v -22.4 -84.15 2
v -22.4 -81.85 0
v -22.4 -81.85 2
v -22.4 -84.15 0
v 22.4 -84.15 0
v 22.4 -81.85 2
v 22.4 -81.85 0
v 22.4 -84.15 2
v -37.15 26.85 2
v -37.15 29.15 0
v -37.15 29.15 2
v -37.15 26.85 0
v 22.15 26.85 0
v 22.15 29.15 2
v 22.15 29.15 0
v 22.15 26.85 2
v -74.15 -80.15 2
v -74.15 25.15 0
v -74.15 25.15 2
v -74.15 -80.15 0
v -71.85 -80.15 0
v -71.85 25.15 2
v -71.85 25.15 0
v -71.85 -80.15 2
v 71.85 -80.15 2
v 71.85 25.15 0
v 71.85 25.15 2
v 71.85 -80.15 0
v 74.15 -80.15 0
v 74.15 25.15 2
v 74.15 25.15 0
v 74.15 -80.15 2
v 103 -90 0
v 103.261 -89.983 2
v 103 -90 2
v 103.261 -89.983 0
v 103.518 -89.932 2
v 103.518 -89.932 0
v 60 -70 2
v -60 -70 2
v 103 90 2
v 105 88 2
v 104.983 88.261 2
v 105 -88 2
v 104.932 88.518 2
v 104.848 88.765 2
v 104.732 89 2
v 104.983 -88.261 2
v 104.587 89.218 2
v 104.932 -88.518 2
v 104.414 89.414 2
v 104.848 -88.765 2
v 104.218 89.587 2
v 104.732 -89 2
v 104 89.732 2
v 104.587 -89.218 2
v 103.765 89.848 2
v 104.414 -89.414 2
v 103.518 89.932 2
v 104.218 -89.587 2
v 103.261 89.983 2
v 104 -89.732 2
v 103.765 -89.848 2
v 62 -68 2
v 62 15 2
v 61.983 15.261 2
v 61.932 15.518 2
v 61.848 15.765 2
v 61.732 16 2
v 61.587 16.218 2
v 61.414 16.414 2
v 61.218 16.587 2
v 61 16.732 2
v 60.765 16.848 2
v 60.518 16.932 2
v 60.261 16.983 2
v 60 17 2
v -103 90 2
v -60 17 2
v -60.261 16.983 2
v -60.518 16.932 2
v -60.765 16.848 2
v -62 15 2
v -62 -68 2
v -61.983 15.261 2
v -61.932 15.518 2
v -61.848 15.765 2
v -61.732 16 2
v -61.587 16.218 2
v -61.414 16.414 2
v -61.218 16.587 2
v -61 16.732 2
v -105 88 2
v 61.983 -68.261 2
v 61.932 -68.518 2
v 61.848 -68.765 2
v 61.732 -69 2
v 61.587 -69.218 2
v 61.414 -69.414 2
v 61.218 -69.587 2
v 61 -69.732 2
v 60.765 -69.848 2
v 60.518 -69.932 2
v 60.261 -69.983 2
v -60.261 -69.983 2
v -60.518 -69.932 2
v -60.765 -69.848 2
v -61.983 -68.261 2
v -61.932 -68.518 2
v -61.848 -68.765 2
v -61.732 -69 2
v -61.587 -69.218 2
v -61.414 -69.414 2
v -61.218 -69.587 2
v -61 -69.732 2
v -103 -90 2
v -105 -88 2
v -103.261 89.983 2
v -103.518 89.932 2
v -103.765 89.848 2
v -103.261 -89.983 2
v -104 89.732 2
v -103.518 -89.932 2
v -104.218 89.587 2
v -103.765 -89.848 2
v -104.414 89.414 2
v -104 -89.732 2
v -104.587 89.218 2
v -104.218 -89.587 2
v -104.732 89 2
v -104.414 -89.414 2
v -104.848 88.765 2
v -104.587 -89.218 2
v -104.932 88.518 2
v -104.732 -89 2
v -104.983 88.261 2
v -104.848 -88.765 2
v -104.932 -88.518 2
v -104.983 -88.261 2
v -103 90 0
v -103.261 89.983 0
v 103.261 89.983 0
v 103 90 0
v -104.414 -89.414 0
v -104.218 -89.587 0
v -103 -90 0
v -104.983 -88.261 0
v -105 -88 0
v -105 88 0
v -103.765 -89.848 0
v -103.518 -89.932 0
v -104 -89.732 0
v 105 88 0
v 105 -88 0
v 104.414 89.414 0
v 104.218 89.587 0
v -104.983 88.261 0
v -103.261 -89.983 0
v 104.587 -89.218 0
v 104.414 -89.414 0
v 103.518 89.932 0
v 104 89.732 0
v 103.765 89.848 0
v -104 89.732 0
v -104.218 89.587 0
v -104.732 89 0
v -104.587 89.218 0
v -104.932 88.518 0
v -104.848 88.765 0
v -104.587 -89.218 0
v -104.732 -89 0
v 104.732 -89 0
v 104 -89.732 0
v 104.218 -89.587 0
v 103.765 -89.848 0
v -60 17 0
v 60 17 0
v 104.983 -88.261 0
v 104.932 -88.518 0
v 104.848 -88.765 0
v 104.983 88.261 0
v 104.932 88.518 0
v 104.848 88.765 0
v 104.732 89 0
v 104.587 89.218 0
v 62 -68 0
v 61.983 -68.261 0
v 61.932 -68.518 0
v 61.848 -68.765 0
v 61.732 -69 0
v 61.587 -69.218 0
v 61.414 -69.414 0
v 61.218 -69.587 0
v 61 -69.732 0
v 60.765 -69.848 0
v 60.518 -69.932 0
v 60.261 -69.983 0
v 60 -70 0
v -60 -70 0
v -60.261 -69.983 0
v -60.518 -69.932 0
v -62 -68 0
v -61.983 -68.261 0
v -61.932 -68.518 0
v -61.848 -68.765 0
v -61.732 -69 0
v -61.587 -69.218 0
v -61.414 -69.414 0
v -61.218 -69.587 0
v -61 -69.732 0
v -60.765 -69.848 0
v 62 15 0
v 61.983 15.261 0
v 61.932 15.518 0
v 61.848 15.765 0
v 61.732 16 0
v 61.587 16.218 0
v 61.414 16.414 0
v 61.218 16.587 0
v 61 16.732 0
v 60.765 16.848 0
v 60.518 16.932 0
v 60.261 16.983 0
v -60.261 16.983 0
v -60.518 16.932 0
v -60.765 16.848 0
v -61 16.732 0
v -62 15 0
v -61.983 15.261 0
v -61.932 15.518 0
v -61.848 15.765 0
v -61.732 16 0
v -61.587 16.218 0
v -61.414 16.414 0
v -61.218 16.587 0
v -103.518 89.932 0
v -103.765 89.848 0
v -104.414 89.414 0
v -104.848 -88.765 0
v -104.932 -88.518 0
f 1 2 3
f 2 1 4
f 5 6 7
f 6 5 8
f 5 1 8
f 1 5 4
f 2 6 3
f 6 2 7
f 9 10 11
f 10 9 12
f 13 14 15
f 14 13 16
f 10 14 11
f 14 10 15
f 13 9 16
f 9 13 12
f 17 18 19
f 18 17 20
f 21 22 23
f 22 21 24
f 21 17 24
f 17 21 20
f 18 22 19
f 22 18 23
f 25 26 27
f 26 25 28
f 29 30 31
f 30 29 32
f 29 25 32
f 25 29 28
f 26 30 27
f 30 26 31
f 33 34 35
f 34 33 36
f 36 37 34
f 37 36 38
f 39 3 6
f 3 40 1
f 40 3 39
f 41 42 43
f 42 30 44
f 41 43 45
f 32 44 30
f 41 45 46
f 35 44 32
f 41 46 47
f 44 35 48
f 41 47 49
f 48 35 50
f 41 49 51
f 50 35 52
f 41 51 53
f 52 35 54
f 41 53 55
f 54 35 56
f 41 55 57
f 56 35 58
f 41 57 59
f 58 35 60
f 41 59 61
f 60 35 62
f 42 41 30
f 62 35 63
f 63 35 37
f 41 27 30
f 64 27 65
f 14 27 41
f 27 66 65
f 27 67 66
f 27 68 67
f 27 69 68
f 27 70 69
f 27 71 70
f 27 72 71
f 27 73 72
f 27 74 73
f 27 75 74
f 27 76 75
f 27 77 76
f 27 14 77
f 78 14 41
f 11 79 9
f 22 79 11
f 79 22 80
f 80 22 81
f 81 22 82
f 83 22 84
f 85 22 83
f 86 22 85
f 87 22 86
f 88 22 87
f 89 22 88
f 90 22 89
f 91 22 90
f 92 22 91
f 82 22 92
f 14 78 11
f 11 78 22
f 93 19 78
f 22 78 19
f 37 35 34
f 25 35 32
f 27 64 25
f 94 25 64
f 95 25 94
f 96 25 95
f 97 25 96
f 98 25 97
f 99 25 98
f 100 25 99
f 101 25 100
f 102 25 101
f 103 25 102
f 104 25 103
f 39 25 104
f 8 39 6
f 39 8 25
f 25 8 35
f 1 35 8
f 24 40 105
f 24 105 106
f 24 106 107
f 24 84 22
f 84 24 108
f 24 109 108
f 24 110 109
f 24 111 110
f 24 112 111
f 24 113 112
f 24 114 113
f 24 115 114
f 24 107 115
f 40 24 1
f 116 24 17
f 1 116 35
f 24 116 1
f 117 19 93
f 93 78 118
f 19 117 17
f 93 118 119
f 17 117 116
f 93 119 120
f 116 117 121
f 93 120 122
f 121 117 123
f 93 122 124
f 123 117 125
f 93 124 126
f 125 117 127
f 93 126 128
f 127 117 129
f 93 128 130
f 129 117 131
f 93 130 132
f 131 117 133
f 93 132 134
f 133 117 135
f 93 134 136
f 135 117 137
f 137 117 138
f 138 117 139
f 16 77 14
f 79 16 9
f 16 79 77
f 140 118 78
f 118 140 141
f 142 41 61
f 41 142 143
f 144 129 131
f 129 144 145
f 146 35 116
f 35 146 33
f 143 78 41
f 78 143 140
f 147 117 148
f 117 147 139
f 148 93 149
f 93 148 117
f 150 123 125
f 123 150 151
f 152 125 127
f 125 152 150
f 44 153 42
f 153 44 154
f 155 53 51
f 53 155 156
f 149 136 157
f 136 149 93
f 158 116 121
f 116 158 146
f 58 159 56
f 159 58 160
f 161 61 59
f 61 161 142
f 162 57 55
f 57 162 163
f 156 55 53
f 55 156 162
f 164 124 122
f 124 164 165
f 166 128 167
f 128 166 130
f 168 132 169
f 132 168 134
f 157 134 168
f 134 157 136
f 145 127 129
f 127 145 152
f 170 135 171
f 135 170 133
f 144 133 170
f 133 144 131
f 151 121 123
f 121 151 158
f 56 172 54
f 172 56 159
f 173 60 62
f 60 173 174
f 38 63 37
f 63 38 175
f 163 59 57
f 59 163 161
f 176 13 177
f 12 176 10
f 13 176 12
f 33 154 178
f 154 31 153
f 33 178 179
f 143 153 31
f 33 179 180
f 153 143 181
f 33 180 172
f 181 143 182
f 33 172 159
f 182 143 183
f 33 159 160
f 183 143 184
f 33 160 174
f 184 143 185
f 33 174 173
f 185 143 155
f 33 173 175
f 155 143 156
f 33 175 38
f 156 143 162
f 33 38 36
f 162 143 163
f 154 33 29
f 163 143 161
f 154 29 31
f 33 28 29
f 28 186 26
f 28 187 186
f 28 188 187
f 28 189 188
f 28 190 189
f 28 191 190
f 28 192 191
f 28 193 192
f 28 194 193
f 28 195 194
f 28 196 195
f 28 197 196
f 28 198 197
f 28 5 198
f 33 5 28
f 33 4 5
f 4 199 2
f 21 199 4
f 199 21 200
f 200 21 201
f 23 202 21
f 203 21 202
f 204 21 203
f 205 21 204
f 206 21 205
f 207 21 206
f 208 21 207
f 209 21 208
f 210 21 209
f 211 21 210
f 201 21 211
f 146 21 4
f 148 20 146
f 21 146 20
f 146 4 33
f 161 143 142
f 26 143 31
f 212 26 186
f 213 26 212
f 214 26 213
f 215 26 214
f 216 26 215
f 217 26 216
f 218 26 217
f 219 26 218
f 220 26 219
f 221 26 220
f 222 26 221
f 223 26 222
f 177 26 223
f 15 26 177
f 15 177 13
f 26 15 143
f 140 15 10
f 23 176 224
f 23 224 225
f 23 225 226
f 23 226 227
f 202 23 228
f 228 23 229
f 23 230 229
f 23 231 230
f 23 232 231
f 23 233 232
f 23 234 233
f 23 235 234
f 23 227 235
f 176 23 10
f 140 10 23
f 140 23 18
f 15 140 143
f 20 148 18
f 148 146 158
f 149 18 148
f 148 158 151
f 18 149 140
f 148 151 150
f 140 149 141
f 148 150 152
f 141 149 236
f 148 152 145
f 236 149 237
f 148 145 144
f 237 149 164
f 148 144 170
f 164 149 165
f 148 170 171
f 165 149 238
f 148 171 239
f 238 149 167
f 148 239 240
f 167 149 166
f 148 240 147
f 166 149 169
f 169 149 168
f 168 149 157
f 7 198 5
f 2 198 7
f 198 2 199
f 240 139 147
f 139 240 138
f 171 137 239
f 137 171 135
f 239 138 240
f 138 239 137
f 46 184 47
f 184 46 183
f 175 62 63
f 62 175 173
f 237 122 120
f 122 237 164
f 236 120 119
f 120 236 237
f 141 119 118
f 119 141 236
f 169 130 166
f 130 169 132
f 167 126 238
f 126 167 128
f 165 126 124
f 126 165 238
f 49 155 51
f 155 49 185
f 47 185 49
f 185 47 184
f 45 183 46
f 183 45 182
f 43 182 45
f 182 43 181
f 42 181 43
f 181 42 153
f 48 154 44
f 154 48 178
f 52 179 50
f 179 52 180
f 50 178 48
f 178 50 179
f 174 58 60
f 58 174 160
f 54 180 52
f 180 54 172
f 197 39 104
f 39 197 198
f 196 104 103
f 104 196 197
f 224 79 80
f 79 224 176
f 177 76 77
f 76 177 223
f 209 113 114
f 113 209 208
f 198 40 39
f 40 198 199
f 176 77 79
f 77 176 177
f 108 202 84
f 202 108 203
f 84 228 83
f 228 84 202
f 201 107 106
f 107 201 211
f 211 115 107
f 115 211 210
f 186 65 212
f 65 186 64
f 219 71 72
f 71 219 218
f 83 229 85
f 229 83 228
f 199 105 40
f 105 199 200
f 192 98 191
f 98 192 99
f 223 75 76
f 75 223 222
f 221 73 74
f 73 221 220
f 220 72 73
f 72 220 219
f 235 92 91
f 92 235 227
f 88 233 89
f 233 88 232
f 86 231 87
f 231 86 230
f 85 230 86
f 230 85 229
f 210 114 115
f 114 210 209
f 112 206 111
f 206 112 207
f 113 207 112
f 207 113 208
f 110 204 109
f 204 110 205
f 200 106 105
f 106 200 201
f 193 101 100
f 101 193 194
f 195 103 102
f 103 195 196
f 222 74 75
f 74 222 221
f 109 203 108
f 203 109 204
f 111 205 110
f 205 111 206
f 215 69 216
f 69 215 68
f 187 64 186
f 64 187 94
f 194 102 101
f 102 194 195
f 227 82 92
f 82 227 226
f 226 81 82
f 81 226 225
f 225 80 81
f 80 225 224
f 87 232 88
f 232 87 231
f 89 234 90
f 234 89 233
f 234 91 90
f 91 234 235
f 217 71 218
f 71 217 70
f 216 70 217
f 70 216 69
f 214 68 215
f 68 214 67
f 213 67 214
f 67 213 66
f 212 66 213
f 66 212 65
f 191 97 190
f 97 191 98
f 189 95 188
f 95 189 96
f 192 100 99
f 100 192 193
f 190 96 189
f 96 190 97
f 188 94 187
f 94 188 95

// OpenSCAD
/*
  Seed imaging system case with experimental collector

  Starting point:
    A simple rectangular base plate for the vacuum/rocking seed imaging system.
*/

$fn = 48;

// Choose what OpenSCAD shows/exports.
part_to_show = "plate"; // "assembly", "plate", "front", "back", "left_side", "right_side", "sides", "collector", "lower_frame", "bottom"

// Base plate dimensions.
plate_w = 210;      // mm
plate_h = 180;      // mm
plate_thick = 2;    // mm
corner_r = 2;       // mm, just enough to remove sharp corners
wall_slot_clearance = 0.3; // mm extra slot size for sliding wall parts into plate

// Cutout matching the outer tray footprint of the moving funnel adapter.
funnel_cutout_w = 124;       // mm, long side plus clearance for rotation
funnel_cutout_h = 87;        // mm, short side plus clearance for rotation
funnel_front_gap = 20;       // mm from front long edge of plate to cutout
funnel_cutout_r = 2;         // mm, slight radius to avoid sharp internal corners
funnel_cutout_y = -plate_h/2 + funnel_front_gap + funnel_cutout_h/2;

// Front wall for the vacuum adapter interface, hanging down from the top plate.
front_wall_offset_from_cutout = 12; // mm from front edge of cutout toward plate front
front_wall_extra_w = 10;            // mm extension beyond each cutout side
front_wall_w = funnel_cutout_w + 2 * front_wall_extra_w;
front_wall_h = 101.25;              // mm, bottom is 72 mm below front circle center
front_wall_thick = 2;               // mm
front_wall_y = funnel_cutout_y - funnel_cutout_h/2 - front_wall_offset_from_cutout - front_wall_thick;
back_wall_offset_from_cutout = 10;  // mm from back edge of cutout toward plate back
back_wall_y = funnel_cutout_y + funnel_cutout_h/2 + back_wall_offset_from_cutout;
side_wall_thick = front_wall_thick;
side_wall_y = front_wall_y;
side_wall_depth = back_wall_y + front_wall_thick - front_wall_y;

// Circular opening in the front wall for the static funnel-system spout.
static_spout_outer_d = 31.5;       // mm, current static male spout OD
front_wall_spout_clearance = 1;    // mm extra diameter clearance
front_wall_spout_cutout_d = static_spout_outer_d + front_wall_spout_clearance;
front_wall_spout_top_drop = 15;    // mm below top surface of plate
front_wall_spout_center_z = plate_thick - front_wall_spout_top_drop - front_wall_spout_cutout_d/2;
front_wall_tab_margin = 10;      // mm material around circular spout tab
front_wall_tab_x = -front_wall_spout_cutout_d/2 - front_wall_tab_margin;
front_wall_tab_w = front_wall_spout_cutout_d + 2 * front_wall_tab_margin;
front_back_wall_bottom_clearance = 10; // mm below circular cutout bottom
front_back_wall_bottom_z = front_wall_spout_center_z - front_wall_spout_cutout_d/2 - front_back_wall_bottom_clearance;
front_back_wall_h = -front_back_wall_bottom_z;

// Rectangular opening in the back wall, aligned with the spout opening height.
back_wall_rect_cutout_w = 40;   // mm, long horizontal edge
back_wall_rect_cutout_h = 20;   // mm, vertical edge
back_wall_rect_cutout_x_shift = -11; // mm, left shift from spout center
back_wall_notch_size = 7;       // mm square notch centered on right edge
back_wall_notch_overlap = 0.5;  // mm overlap to avoid a zero-width seam
back_wall_tab_margin = 10;      // mm material around motor cutout tab
back_wall_cutout_min_x = back_wall_rect_cutout_x_shift - back_wall_rect_cutout_w/2;
back_wall_cutout_max_x = back_wall_rect_cutout_x_shift + back_wall_rect_cutout_w/2 + back_wall_notch_size;
back_wall_tab_x = back_wall_cutout_min_x - back_wall_tab_margin;
back_wall_tab_w = back_wall_cutout_max_x - back_wall_cutout_min_x + 2 * back_wall_tab_margin;
back_wall_servo_pad_thick = 4;    // mm extra thickness behind servo mount area
back_wall_servo_pad_margin = 6;   // mm material around the motor rectangle cutout
// Experimental lower collector dimensions.
total_system_h = 190;              // mm, target total height from top of plate to floor
floor_z = plate_thick - total_system_h;
upper_wall_bottom_z = -front_wall_h;
collector_drop_h = upper_wall_bottom_z - floor_z;
collector_wall = 2;                // mm wall thickness for chute/outlet
collector_outlet_od = 30;          // mm outer diameter for seed packet interface
collector_outlet_id = collector_outlet_od - 2 * collector_wall;
collector_outlet_len = 24;         // mm, angled tube length; shorter leaves room for the funnel slope
collector_neck_overlap = 8;        // mm overlap into throat so the angled neck and funnel connect solidly
collector_outlet_angle = 135;      // degrees; cylinder axis points 45 degrees down toward the front
collector_floor_clearance = 35;    // mm from floor to lowest outside edge of outlet mouth
collector_outlet_end_z = floor_z + collector_floor_clearance + collector_outlet_od/2;
collector_outlet_start_z = collector_outlet_end_z - collector_outlet_len * cos(collector_outlet_angle);
collector_outlet_start_y = front_wall_y + 28;
collector_outlet_end_y = collector_outlet_start_y - collector_outlet_len * sin(collector_outlet_angle);
collector_top_margin = 3;          // mm inset from inside wall span
collector_post = 8;                // mm square lower frame corner posts
collector_base_rail_h = 8;         // mm height of bottom rails
collector_base_rail_thick = 6;     // mm thickness of bottom rails
collector_lip_h = 4;               // mm thick top lip tying collector mouth into lower posts
collector_lip_overlap_up = 1;      // mm overlap into upper walls for preview/alignment before adding slots
bottom_wall_notch_depth = 6;       // mm deep receiver notch for side walls in the bottom piece
side_wall_h = front_wall_h + bottom_wall_notch_depth; // mm side walls extend into bottom notches
side_wall_top_tab_inset = 4;      // mm shorter at each end to make a shoulder stop under the top plate
front_back_wall_top_tab_inset = 4; // mm shorter at each end for front/back top plate shoulder stops
tray_boundary_wall_thick = 6;     // mm, wider than 2 mm front/back walls for future notches
tray_boundary_wall_h = 6;         // mm small raised boundary at front/back tray edges
tray_boundary_wall_x_margin = 4;  // mm extra length beyond matching front/back wall pieces
tray_boundary_wall_side_inset = side_wall_thick/2 + collector_post/2; // mm keeps rails clear of side walls
front_back_diag_frame_w = 8;      // mm width of trapezoid-frame brace bands
front_back_diag_wall_overlap = 1; // mm overlap so brace merges cleanly into front/back wall
front_back_diag_inner_base_inset = 22; // mm larger values make the inner triangle less obtuse
front_back_diag_end_inset = 14;   // mm keeps brace feet shy of side-wall/funnel corners
front_back_diag_tab_w = 12;       // mm width of rectangular feet that seat in tray-wall notches
front_back_diag_tab_h = tray_boundary_wall_h; // mm foot height matching the tray wall height
front_back_diag_notch_clearance = wall_slot_clearance; // mm extra room around brace feet

// Makes a 2D rounded rectangle profile.
module rounded_rect_2d(w, h, r) {
  offset(r = r)
    square([w - 2*r, h - 2*r], center = true);
}

// Makes the main rectangular base plate with lightly rounded corners.
module base_plate() {
  linear_extrude(height = plate_thick)
    rounded_rect_2d(plate_w, plate_h, corner_r);
}

// Cuts the moving funnel adapter tray footprint through the plate. The long
// side of the cutout runs parallel to the long side of the plate.
module funnel_tray_cutout() {
  translate([0, funnel_cutout_y, -0.5])
    linear_extrude(height = plate_thick + 1)
      rounded_rect_2d(funnel_cutout_w, funnel_cutout_h, funnel_cutout_r);
}

// Cuts the round spout opening through the front wall.
module front_wall_spout_cutout() {
  translate([0, front_wall_y + front_wall_thick/2, front_wall_spout_center_z])
    rotate([90, 0, 0])
      cylinder(h = front_wall_thick + 1, d = front_wall_spout_cutout_d, center = true);
}


// Makes a trapezoid-shaped wall extension with a triangular center opening.
// The two lower rectangular feet seat into matching notches in the tray wall.
module front_back_trapezoid_brace_at(wall_x, wall_w, y, y_thick) {
  top_left = wall_x;
  top_right = wall_x + wall_w;
  foot_left_center = -front_wall_w/2 + front_back_diag_end_inset;
  foot_right_center = front_wall_w/2 - front_back_diag_end_inset;
  foot_left_outer = foot_left_center - front_back_diag_tab_w/2;
  foot_left_inner = foot_left_center + front_back_diag_tab_w/2;
  foot_right_inner = foot_right_center - front_back_diag_tab_w/2;
  foot_right_outer = foot_right_center + front_back_diag_tab_w/2;
  z_top = front_back_wall_bottom_z + front_back_diag_wall_overlap;
  z_bottom = upper_wall_bottom_z;
  z_foot_top = upper_wall_bottom_z + front_back_diag_tab_h;

  translate([0, y + y_thick, 0])
    rotate([90, 0, 0])
      linear_extrude(height = y_thick)
        polygon(points = [
          [top_left, z_top],
          [top_right, z_top],
          [foot_right_outer, z_foot_top],
          [foot_right_outer, z_bottom],
          [foot_left_outer, z_bottom],
          [foot_left_outer, z_foot_top]
        ]);
}
// Makes the front vertical wall below the plate.
module front_wall() {
  front_wall_top_tab_x = front_wall_tab_x + front_back_wall_top_tab_inset;
  front_wall_top_tab_w = front_wall_tab_w - 2 * front_back_wall_top_tab_inset;

  difference() {
    union() {
      translate([front_wall_tab_x, front_wall_y, front_back_wall_bottom_z])
        cube([front_wall_tab_w, front_wall_thick, front_back_wall_h], center = false);
      translate([front_wall_top_tab_x, front_wall_y, 0])
        cube([front_wall_top_tab_w, front_wall_thick, plate_thick], center = false);
      front_back_trapezoid_brace_at(front_wall_tab_x, front_wall_tab_w, front_wall_y, front_wall_thick);
    }
    front_wall_spout_cutout();
  }
}

// Cuts the rectangular opening through the back wall.
module back_wall_rect_cutout() {
  union() {
    translate([back_wall_rect_cutout_x_shift - back_wall_rect_cutout_w/2,
               back_wall_y - 0.5,
               front_wall_spout_center_z - back_wall_rect_cutout_h/2])
      cube([back_wall_rect_cutout_w, front_wall_thick + back_wall_servo_pad_thick + 1, back_wall_rect_cutout_h], center = false);

    translate([back_wall_rect_cutout_x_shift + back_wall_rect_cutout_w/2 - back_wall_notch_overlap,
               back_wall_y - 0.5,
               front_wall_spout_center_z - back_wall_notch_size/2])
      cube([back_wall_notch_size + back_wall_notch_overlap, front_wall_thick + back_wall_servo_pad_thick + 1, back_wall_notch_size], center = false);
  }
}


// Adds localized thickness behind the motor cutout for servo mounting screws.
module back_wall_servo_mount_pad() {
  pad_x = back_wall_tab_x;
  pad_w = back_wall_tab_w;
  pad_z = front_wall_spout_center_z - back_wall_rect_cutout_h/2 - back_wall_servo_pad_margin;
  pad_h = back_wall_rect_cutout_h + 2 * back_wall_servo_pad_margin;

  translate([pad_x, back_wall_y + front_wall_thick, pad_z])
    cube([pad_w, back_wall_servo_pad_thick, pad_h], center = false);
}
// Makes the back vertical wall below the plate, mirrored from the front wall.
module back_wall() {
  back_wall_top_tab_x = back_wall_tab_x + front_back_wall_top_tab_inset;
  back_wall_top_tab_w = back_wall_tab_w - 2 * front_back_wall_top_tab_inset;

  difference() {
    union() {
      translate([back_wall_tab_x, back_wall_y, front_back_wall_bottom_z])
        cube([back_wall_tab_w, front_wall_thick, front_back_wall_h], center = false);
      translate([back_wall_top_tab_x, back_wall_y, 0])
        cube([back_wall_top_tab_w, front_wall_thick, plate_thick], center = false);
      front_back_trapezoid_brace_at(back_wall_tab_x, back_wall_tab_w, back_wall_y, front_wall_thick);
      back_wall_servo_mount_pad();
    }
    back_wall_rect_cutout();
  }
}

// Makes side walls that connect the front and back walls while preserving
// the 144 mm interior span between their inside faces.
module side_wall(side) {
  x = side < 0 ? -front_wall_w/2 - side_wall_thick : front_wall_w/2;
  tab_y = side_wall_y + side_wall_top_tab_inset;
  tab_depth = side_wall_depth - 2 * side_wall_top_tab_inset;

  union() {
    translate([x, side_wall_y, -side_wall_h])
      cube([side_wall_thick, side_wall_depth, side_wall_h], center = false);

    translate([x, tab_y, 0])
      cube([side_wall_thick, tab_depth, plate_thick], center = false);
  }
}

module side_walls() {
  side_wall(-1);
  side_wall(1);
}
// Makes a very thin rectangular face used as the open mouth of the collector chute.
module collector_top_patch(w, d, z) {
  translate([-w/2, side_wall_y + collector_top_margin, z])
    cube([w, d, 0.4], center = false);
}

// Makes a very thin circular face used as the lower throat of the collector chute.
module collector_circle_patch(d, y, z) {
  translate([0, y, z])
    cylinder(h = 0.4, d = d, center = true);
}


// Adds a broad lip at the top of the collector so the funnel clearly rests on the lower posts
// and closes the gap to the original side wall pieces.
module collector_top_lip_outer() {
  lip_x = -front_wall_w/2 - side_wall_thick/2 - collector_post/2;
  lip_y = side_wall_y;
  lip_w = front_wall_w + side_wall_thick + collector_post;
  lip_d = side_wall_depth;

  translate([lip_x, lip_y, upper_wall_bottom_z - collector_lip_h])
    cube([lip_w, lip_d, collector_lip_h + collector_lip_overlap_up], center = false);
}

// Keeps the collector lip open so seeds can drop into the funnel.
module collector_top_lip_void() {
  opening_w = front_wall_w - 2 * collector_wall;
  opening_d = side_wall_depth - 2 * collector_wall;

  translate([-opening_w/2,
             side_wall_y + collector_wall,
             upper_wall_bottom_z - collector_lip_h - 0.5])
    cube([opening_w, opening_d, collector_lip_h + 3], center = false);
}
// Outer solid rectangular-to-round collector funnel.
module collector_chute_outer() {
  top_w_outer = front_wall_w - 2 * collector_top_margin;
  top_d_outer = side_wall_depth - 2 * collector_top_margin;

  hull() {
    collector_top_patch(top_w_outer, top_d_outer, upper_wall_bottom_z - 0.4);
    collector_circle_patch(collector_outlet_od + 2 * collector_wall, collector_outlet_start_y, collector_outlet_start_z);
  }
}

// Continuous inner void for the rectangular-to-round collector funnel.
module collector_chute_void() {
  top_w_outer = front_wall_w - 2 * collector_top_margin;
  top_d_outer = side_wall_depth - 2 * collector_top_margin;
  top_w_inner = top_w_outer - 2 * collector_wall;
  top_d_inner = top_d_outer - 2 * collector_wall;

  hull() {
    collector_top_patch(top_w_inner, top_d_inner, upper_wall_bottom_z + 1.5);
    collector_circle_patch(collector_outlet_id, collector_outlet_start_y, collector_outlet_start_z);
  }
}


// Adds material only behind the circular throat to close the rear-side gap.
// The shared inner void is subtracted later, so this reinforces the wall without blocking flow.
module collector_rear_throat_seal_outer() {
  seal_d = collector_outlet_od + 2 * collector_wall;
  seal_h = 8;

  intersection() {
    translate([0, collector_outlet_start_y, collector_outlet_start_z - seal_h/2])
      cylinder(h = seal_h, d = seal_d, center = false);

    translate([-seal_d/2,
               collector_outlet_start_y,
               collector_outlet_start_z - seal_h/2])
      cube([seal_d, seal_d/2 + collector_wall, seal_h], center = false);
  }
}
// Outer solid for the tilted outlet neck that the seed packet can wrap around.
module collector_outlet_neck_outer() {
  translate([0,
             collector_outlet_start_y + collector_neck_overlap * sin(collector_outlet_angle),
             collector_outlet_start_z - collector_neck_overlap * cos(collector_outlet_angle)])
    rotate([collector_outlet_angle, 0, 0])
      cylinder(h = collector_outlet_len + collector_neck_overlap, d = collector_outlet_od, center = false);
}

// Continuous inner void through the tilted outlet neck.
module collector_outlet_neck_void() {
  translate([0,
             collector_outlet_start_y + collector_neck_overlap * sin(collector_outlet_angle),
             collector_outlet_start_z - collector_neck_overlap * cos(collector_outlet_angle)])
    rotate([collector_outlet_angle, 0, 0])
      translate([0, 0, -0.5])
        cylinder(h = collector_outlet_len + collector_neck_overlap + 1, d = collector_outlet_id, center = false);
}


// Adds small front/back boundary walls on the collector tray lip.
// These are wider than the front/back wall thickness so future receiver notches
// can leave material on both sides of the descending wall extensions.
module collector_tray_boundary_walls_outer() {
  edge_x = -front_wall_w/2 - side_wall_thick/2 - collector_post/2 + tray_boundary_wall_side_inset;
  edge_w = front_wall_w + side_wall_thick + collector_post - 2 * tray_boundary_wall_side_inset;
  z0 = upper_wall_bottom_z;

  translate([edge_x,
             front_wall_y + front_wall_thick/2 - tray_boundary_wall_thick/2,
             z0])
    cube([edge_w, tray_boundary_wall_thick, tray_boundary_wall_h], center = false);

  translate([edge_x,
             back_wall_y + front_wall_thick/2 - tray_boundary_wall_thick/2,
             z0])
    cube([edge_w, tray_boundary_wall_thick, tray_boundary_wall_h], center = false);
}
// Makes the internal seed collector as one continuous hollow funnel and angled neck.
module collector_funnel() {
  difference() {
    union() {
      collector_top_lip_outer();
      collector_tray_boundary_walls_outer();
      collector_chute_outer();
      collector_rear_throat_seal_outer();
      collector_outlet_neck_outer();
    }

    union() {
      collector_chute_void();
      collector_outlet_neck_void();
    }
  }
}

// Adds a light lower frame so the final assembly reaches 190 mm without
// relying on the funnel shell as the only support.
module lower_frame() {
  x_left = -front_wall_w/2 - side_wall_thick/2 - collector_post/2;
  x_right = front_wall_w/2 + side_wall_thick/2 - collector_post/2;
  y_front = side_wall_y;
  y_back = side_wall_y + side_wall_depth - collector_post;

  union() {
    for (x = [x_left, x_right])
      for (y = [y_front, y_back])
        translate([x, y, floor_z])
          cube([collector_post, collector_post, collector_drop_h], center = false);

    translate([x_left, y_back, floor_z])
      cube([x_right + collector_post - x_left, collector_base_rail_thick, collector_base_rail_h], center = false);

    for (x = [x_left, x_right])
      translate([x, y_front, floor_z])
        cube([collector_post, side_wall_depth, collector_base_rail_h], center = false);
  }
}



// Cuts receiver notches into the top of the bottom module for the two side walls.
module bottom_side_wall_notches() {
  c = wall_slot_clearance;
  z0 = upper_wall_bottom_z - bottom_wall_notch_depth;
  h = bottom_wall_notch_depth + collector_lip_overlap_up + 1;

  translate([-front_wall_w/2 - side_wall_thick - c/2,
             side_wall_y - c/2,
             z0])
    cube([side_wall_thick + c, side_wall_depth + c, h], center = false);

  translate([front_wall_w/2 - c/2,
             side_wall_y - c/2,
             z0])
    cube([side_wall_thick + c, side_wall_depth + c, h], center = false);
}

// Cuts one long receiver groove in each tray rail for the front/back brace base.
module front_back_brace_foot_notches() {
  c = front_back_diag_notch_clearance;
  groove_w = front_wall_w - 2 * front_back_diag_end_inset + front_back_diag_tab_w + c;
  groove_y = front_wall_thick + c;
  groove_h = front_back_diag_tab_h + c;
  wall_ys = [front_wall_y, back_wall_y];

  for (y = wall_ys)
    translate([-groove_w/2,
               y - c/2,
               upper_wall_bottom_z - c/2])
      cube([groove_w, groove_y, groove_h], center = false);
}
// Makes the new lower modular piece: collector funnel plus its support frame.
// The original side walls remain separate modules so we can add slide-fit features next.
module bottom_piece() {
  difference() {
    union() {
      collector_funnel();
      lower_frame();
    }
    bottom_side_wall_notches();
    front_back_brace_foot_notches();
  }
}
// Cuts slots through the top plate matching the top footprint of each wall/tab.
module wall_slot_cutouts() {
  c = wall_slot_clearance;

  translate([front_wall_tab_x + front_back_wall_top_tab_inset - c/2, front_wall_y - c/2, -0.5])
    cube([front_wall_tab_w - 2 * front_back_wall_top_tab_inset + c, front_wall_thick + c, plate_thick + 1], center = false);

  translate([back_wall_tab_x + front_back_wall_top_tab_inset - c/2, back_wall_y - c/2, -0.5])
    cube([back_wall_tab_w - 2 * front_back_wall_top_tab_inset + c, front_wall_thick + c, plate_thick + 1], center = false);

  translate([-front_wall_w/2 - side_wall_thick - c/2,
             side_wall_y + side_wall_top_tab_inset - c/2,
             -0.5])
    cube([side_wall_thick + c,
          side_wall_depth - 2 * side_wall_top_tab_inset + c,
          plate_thick + 1], center = false);

  translate([front_wall_w/2 - c/2,
             side_wall_y + side_wall_top_tab_inset - c/2,
             -0.5])
    cube([side_wall_thick + c,
          side_wall_depth - 2 * side_wall_top_tab_inset + c,
          plate_thick + 1], center = false);
}
module case_plate() {
  difference() {
    base_plate();
    funnel_tray_cutout();
    wall_slot_cutouts();
  }
}

module case_assembly() {
  union() {
    case_plate();
    front_wall();
    back_wall();
    side_walls();
    bottom_piece();
  }
}

if (part_to_show == "plate") {
  case_plate();
} else if (part_to_show == "front") {
  front_wall();
} else if (part_to_show == "back") {
  back_wall();
} else if (part_to_show == "left_side") {
  side_wall(-1);
} else if (part_to_show == "right_side") {
  side_wall(1);
} else if (part_to_show == "sides") {
  side_walls();
} else if (part_to_show == "collector") {
  collector_funnel();
} else if (part_to_show == "lower_frame") {
  lower_frame();
} else if (part_to_show == "bottom") {
  bottom_piece();
} else {
  case_assembly();
}
